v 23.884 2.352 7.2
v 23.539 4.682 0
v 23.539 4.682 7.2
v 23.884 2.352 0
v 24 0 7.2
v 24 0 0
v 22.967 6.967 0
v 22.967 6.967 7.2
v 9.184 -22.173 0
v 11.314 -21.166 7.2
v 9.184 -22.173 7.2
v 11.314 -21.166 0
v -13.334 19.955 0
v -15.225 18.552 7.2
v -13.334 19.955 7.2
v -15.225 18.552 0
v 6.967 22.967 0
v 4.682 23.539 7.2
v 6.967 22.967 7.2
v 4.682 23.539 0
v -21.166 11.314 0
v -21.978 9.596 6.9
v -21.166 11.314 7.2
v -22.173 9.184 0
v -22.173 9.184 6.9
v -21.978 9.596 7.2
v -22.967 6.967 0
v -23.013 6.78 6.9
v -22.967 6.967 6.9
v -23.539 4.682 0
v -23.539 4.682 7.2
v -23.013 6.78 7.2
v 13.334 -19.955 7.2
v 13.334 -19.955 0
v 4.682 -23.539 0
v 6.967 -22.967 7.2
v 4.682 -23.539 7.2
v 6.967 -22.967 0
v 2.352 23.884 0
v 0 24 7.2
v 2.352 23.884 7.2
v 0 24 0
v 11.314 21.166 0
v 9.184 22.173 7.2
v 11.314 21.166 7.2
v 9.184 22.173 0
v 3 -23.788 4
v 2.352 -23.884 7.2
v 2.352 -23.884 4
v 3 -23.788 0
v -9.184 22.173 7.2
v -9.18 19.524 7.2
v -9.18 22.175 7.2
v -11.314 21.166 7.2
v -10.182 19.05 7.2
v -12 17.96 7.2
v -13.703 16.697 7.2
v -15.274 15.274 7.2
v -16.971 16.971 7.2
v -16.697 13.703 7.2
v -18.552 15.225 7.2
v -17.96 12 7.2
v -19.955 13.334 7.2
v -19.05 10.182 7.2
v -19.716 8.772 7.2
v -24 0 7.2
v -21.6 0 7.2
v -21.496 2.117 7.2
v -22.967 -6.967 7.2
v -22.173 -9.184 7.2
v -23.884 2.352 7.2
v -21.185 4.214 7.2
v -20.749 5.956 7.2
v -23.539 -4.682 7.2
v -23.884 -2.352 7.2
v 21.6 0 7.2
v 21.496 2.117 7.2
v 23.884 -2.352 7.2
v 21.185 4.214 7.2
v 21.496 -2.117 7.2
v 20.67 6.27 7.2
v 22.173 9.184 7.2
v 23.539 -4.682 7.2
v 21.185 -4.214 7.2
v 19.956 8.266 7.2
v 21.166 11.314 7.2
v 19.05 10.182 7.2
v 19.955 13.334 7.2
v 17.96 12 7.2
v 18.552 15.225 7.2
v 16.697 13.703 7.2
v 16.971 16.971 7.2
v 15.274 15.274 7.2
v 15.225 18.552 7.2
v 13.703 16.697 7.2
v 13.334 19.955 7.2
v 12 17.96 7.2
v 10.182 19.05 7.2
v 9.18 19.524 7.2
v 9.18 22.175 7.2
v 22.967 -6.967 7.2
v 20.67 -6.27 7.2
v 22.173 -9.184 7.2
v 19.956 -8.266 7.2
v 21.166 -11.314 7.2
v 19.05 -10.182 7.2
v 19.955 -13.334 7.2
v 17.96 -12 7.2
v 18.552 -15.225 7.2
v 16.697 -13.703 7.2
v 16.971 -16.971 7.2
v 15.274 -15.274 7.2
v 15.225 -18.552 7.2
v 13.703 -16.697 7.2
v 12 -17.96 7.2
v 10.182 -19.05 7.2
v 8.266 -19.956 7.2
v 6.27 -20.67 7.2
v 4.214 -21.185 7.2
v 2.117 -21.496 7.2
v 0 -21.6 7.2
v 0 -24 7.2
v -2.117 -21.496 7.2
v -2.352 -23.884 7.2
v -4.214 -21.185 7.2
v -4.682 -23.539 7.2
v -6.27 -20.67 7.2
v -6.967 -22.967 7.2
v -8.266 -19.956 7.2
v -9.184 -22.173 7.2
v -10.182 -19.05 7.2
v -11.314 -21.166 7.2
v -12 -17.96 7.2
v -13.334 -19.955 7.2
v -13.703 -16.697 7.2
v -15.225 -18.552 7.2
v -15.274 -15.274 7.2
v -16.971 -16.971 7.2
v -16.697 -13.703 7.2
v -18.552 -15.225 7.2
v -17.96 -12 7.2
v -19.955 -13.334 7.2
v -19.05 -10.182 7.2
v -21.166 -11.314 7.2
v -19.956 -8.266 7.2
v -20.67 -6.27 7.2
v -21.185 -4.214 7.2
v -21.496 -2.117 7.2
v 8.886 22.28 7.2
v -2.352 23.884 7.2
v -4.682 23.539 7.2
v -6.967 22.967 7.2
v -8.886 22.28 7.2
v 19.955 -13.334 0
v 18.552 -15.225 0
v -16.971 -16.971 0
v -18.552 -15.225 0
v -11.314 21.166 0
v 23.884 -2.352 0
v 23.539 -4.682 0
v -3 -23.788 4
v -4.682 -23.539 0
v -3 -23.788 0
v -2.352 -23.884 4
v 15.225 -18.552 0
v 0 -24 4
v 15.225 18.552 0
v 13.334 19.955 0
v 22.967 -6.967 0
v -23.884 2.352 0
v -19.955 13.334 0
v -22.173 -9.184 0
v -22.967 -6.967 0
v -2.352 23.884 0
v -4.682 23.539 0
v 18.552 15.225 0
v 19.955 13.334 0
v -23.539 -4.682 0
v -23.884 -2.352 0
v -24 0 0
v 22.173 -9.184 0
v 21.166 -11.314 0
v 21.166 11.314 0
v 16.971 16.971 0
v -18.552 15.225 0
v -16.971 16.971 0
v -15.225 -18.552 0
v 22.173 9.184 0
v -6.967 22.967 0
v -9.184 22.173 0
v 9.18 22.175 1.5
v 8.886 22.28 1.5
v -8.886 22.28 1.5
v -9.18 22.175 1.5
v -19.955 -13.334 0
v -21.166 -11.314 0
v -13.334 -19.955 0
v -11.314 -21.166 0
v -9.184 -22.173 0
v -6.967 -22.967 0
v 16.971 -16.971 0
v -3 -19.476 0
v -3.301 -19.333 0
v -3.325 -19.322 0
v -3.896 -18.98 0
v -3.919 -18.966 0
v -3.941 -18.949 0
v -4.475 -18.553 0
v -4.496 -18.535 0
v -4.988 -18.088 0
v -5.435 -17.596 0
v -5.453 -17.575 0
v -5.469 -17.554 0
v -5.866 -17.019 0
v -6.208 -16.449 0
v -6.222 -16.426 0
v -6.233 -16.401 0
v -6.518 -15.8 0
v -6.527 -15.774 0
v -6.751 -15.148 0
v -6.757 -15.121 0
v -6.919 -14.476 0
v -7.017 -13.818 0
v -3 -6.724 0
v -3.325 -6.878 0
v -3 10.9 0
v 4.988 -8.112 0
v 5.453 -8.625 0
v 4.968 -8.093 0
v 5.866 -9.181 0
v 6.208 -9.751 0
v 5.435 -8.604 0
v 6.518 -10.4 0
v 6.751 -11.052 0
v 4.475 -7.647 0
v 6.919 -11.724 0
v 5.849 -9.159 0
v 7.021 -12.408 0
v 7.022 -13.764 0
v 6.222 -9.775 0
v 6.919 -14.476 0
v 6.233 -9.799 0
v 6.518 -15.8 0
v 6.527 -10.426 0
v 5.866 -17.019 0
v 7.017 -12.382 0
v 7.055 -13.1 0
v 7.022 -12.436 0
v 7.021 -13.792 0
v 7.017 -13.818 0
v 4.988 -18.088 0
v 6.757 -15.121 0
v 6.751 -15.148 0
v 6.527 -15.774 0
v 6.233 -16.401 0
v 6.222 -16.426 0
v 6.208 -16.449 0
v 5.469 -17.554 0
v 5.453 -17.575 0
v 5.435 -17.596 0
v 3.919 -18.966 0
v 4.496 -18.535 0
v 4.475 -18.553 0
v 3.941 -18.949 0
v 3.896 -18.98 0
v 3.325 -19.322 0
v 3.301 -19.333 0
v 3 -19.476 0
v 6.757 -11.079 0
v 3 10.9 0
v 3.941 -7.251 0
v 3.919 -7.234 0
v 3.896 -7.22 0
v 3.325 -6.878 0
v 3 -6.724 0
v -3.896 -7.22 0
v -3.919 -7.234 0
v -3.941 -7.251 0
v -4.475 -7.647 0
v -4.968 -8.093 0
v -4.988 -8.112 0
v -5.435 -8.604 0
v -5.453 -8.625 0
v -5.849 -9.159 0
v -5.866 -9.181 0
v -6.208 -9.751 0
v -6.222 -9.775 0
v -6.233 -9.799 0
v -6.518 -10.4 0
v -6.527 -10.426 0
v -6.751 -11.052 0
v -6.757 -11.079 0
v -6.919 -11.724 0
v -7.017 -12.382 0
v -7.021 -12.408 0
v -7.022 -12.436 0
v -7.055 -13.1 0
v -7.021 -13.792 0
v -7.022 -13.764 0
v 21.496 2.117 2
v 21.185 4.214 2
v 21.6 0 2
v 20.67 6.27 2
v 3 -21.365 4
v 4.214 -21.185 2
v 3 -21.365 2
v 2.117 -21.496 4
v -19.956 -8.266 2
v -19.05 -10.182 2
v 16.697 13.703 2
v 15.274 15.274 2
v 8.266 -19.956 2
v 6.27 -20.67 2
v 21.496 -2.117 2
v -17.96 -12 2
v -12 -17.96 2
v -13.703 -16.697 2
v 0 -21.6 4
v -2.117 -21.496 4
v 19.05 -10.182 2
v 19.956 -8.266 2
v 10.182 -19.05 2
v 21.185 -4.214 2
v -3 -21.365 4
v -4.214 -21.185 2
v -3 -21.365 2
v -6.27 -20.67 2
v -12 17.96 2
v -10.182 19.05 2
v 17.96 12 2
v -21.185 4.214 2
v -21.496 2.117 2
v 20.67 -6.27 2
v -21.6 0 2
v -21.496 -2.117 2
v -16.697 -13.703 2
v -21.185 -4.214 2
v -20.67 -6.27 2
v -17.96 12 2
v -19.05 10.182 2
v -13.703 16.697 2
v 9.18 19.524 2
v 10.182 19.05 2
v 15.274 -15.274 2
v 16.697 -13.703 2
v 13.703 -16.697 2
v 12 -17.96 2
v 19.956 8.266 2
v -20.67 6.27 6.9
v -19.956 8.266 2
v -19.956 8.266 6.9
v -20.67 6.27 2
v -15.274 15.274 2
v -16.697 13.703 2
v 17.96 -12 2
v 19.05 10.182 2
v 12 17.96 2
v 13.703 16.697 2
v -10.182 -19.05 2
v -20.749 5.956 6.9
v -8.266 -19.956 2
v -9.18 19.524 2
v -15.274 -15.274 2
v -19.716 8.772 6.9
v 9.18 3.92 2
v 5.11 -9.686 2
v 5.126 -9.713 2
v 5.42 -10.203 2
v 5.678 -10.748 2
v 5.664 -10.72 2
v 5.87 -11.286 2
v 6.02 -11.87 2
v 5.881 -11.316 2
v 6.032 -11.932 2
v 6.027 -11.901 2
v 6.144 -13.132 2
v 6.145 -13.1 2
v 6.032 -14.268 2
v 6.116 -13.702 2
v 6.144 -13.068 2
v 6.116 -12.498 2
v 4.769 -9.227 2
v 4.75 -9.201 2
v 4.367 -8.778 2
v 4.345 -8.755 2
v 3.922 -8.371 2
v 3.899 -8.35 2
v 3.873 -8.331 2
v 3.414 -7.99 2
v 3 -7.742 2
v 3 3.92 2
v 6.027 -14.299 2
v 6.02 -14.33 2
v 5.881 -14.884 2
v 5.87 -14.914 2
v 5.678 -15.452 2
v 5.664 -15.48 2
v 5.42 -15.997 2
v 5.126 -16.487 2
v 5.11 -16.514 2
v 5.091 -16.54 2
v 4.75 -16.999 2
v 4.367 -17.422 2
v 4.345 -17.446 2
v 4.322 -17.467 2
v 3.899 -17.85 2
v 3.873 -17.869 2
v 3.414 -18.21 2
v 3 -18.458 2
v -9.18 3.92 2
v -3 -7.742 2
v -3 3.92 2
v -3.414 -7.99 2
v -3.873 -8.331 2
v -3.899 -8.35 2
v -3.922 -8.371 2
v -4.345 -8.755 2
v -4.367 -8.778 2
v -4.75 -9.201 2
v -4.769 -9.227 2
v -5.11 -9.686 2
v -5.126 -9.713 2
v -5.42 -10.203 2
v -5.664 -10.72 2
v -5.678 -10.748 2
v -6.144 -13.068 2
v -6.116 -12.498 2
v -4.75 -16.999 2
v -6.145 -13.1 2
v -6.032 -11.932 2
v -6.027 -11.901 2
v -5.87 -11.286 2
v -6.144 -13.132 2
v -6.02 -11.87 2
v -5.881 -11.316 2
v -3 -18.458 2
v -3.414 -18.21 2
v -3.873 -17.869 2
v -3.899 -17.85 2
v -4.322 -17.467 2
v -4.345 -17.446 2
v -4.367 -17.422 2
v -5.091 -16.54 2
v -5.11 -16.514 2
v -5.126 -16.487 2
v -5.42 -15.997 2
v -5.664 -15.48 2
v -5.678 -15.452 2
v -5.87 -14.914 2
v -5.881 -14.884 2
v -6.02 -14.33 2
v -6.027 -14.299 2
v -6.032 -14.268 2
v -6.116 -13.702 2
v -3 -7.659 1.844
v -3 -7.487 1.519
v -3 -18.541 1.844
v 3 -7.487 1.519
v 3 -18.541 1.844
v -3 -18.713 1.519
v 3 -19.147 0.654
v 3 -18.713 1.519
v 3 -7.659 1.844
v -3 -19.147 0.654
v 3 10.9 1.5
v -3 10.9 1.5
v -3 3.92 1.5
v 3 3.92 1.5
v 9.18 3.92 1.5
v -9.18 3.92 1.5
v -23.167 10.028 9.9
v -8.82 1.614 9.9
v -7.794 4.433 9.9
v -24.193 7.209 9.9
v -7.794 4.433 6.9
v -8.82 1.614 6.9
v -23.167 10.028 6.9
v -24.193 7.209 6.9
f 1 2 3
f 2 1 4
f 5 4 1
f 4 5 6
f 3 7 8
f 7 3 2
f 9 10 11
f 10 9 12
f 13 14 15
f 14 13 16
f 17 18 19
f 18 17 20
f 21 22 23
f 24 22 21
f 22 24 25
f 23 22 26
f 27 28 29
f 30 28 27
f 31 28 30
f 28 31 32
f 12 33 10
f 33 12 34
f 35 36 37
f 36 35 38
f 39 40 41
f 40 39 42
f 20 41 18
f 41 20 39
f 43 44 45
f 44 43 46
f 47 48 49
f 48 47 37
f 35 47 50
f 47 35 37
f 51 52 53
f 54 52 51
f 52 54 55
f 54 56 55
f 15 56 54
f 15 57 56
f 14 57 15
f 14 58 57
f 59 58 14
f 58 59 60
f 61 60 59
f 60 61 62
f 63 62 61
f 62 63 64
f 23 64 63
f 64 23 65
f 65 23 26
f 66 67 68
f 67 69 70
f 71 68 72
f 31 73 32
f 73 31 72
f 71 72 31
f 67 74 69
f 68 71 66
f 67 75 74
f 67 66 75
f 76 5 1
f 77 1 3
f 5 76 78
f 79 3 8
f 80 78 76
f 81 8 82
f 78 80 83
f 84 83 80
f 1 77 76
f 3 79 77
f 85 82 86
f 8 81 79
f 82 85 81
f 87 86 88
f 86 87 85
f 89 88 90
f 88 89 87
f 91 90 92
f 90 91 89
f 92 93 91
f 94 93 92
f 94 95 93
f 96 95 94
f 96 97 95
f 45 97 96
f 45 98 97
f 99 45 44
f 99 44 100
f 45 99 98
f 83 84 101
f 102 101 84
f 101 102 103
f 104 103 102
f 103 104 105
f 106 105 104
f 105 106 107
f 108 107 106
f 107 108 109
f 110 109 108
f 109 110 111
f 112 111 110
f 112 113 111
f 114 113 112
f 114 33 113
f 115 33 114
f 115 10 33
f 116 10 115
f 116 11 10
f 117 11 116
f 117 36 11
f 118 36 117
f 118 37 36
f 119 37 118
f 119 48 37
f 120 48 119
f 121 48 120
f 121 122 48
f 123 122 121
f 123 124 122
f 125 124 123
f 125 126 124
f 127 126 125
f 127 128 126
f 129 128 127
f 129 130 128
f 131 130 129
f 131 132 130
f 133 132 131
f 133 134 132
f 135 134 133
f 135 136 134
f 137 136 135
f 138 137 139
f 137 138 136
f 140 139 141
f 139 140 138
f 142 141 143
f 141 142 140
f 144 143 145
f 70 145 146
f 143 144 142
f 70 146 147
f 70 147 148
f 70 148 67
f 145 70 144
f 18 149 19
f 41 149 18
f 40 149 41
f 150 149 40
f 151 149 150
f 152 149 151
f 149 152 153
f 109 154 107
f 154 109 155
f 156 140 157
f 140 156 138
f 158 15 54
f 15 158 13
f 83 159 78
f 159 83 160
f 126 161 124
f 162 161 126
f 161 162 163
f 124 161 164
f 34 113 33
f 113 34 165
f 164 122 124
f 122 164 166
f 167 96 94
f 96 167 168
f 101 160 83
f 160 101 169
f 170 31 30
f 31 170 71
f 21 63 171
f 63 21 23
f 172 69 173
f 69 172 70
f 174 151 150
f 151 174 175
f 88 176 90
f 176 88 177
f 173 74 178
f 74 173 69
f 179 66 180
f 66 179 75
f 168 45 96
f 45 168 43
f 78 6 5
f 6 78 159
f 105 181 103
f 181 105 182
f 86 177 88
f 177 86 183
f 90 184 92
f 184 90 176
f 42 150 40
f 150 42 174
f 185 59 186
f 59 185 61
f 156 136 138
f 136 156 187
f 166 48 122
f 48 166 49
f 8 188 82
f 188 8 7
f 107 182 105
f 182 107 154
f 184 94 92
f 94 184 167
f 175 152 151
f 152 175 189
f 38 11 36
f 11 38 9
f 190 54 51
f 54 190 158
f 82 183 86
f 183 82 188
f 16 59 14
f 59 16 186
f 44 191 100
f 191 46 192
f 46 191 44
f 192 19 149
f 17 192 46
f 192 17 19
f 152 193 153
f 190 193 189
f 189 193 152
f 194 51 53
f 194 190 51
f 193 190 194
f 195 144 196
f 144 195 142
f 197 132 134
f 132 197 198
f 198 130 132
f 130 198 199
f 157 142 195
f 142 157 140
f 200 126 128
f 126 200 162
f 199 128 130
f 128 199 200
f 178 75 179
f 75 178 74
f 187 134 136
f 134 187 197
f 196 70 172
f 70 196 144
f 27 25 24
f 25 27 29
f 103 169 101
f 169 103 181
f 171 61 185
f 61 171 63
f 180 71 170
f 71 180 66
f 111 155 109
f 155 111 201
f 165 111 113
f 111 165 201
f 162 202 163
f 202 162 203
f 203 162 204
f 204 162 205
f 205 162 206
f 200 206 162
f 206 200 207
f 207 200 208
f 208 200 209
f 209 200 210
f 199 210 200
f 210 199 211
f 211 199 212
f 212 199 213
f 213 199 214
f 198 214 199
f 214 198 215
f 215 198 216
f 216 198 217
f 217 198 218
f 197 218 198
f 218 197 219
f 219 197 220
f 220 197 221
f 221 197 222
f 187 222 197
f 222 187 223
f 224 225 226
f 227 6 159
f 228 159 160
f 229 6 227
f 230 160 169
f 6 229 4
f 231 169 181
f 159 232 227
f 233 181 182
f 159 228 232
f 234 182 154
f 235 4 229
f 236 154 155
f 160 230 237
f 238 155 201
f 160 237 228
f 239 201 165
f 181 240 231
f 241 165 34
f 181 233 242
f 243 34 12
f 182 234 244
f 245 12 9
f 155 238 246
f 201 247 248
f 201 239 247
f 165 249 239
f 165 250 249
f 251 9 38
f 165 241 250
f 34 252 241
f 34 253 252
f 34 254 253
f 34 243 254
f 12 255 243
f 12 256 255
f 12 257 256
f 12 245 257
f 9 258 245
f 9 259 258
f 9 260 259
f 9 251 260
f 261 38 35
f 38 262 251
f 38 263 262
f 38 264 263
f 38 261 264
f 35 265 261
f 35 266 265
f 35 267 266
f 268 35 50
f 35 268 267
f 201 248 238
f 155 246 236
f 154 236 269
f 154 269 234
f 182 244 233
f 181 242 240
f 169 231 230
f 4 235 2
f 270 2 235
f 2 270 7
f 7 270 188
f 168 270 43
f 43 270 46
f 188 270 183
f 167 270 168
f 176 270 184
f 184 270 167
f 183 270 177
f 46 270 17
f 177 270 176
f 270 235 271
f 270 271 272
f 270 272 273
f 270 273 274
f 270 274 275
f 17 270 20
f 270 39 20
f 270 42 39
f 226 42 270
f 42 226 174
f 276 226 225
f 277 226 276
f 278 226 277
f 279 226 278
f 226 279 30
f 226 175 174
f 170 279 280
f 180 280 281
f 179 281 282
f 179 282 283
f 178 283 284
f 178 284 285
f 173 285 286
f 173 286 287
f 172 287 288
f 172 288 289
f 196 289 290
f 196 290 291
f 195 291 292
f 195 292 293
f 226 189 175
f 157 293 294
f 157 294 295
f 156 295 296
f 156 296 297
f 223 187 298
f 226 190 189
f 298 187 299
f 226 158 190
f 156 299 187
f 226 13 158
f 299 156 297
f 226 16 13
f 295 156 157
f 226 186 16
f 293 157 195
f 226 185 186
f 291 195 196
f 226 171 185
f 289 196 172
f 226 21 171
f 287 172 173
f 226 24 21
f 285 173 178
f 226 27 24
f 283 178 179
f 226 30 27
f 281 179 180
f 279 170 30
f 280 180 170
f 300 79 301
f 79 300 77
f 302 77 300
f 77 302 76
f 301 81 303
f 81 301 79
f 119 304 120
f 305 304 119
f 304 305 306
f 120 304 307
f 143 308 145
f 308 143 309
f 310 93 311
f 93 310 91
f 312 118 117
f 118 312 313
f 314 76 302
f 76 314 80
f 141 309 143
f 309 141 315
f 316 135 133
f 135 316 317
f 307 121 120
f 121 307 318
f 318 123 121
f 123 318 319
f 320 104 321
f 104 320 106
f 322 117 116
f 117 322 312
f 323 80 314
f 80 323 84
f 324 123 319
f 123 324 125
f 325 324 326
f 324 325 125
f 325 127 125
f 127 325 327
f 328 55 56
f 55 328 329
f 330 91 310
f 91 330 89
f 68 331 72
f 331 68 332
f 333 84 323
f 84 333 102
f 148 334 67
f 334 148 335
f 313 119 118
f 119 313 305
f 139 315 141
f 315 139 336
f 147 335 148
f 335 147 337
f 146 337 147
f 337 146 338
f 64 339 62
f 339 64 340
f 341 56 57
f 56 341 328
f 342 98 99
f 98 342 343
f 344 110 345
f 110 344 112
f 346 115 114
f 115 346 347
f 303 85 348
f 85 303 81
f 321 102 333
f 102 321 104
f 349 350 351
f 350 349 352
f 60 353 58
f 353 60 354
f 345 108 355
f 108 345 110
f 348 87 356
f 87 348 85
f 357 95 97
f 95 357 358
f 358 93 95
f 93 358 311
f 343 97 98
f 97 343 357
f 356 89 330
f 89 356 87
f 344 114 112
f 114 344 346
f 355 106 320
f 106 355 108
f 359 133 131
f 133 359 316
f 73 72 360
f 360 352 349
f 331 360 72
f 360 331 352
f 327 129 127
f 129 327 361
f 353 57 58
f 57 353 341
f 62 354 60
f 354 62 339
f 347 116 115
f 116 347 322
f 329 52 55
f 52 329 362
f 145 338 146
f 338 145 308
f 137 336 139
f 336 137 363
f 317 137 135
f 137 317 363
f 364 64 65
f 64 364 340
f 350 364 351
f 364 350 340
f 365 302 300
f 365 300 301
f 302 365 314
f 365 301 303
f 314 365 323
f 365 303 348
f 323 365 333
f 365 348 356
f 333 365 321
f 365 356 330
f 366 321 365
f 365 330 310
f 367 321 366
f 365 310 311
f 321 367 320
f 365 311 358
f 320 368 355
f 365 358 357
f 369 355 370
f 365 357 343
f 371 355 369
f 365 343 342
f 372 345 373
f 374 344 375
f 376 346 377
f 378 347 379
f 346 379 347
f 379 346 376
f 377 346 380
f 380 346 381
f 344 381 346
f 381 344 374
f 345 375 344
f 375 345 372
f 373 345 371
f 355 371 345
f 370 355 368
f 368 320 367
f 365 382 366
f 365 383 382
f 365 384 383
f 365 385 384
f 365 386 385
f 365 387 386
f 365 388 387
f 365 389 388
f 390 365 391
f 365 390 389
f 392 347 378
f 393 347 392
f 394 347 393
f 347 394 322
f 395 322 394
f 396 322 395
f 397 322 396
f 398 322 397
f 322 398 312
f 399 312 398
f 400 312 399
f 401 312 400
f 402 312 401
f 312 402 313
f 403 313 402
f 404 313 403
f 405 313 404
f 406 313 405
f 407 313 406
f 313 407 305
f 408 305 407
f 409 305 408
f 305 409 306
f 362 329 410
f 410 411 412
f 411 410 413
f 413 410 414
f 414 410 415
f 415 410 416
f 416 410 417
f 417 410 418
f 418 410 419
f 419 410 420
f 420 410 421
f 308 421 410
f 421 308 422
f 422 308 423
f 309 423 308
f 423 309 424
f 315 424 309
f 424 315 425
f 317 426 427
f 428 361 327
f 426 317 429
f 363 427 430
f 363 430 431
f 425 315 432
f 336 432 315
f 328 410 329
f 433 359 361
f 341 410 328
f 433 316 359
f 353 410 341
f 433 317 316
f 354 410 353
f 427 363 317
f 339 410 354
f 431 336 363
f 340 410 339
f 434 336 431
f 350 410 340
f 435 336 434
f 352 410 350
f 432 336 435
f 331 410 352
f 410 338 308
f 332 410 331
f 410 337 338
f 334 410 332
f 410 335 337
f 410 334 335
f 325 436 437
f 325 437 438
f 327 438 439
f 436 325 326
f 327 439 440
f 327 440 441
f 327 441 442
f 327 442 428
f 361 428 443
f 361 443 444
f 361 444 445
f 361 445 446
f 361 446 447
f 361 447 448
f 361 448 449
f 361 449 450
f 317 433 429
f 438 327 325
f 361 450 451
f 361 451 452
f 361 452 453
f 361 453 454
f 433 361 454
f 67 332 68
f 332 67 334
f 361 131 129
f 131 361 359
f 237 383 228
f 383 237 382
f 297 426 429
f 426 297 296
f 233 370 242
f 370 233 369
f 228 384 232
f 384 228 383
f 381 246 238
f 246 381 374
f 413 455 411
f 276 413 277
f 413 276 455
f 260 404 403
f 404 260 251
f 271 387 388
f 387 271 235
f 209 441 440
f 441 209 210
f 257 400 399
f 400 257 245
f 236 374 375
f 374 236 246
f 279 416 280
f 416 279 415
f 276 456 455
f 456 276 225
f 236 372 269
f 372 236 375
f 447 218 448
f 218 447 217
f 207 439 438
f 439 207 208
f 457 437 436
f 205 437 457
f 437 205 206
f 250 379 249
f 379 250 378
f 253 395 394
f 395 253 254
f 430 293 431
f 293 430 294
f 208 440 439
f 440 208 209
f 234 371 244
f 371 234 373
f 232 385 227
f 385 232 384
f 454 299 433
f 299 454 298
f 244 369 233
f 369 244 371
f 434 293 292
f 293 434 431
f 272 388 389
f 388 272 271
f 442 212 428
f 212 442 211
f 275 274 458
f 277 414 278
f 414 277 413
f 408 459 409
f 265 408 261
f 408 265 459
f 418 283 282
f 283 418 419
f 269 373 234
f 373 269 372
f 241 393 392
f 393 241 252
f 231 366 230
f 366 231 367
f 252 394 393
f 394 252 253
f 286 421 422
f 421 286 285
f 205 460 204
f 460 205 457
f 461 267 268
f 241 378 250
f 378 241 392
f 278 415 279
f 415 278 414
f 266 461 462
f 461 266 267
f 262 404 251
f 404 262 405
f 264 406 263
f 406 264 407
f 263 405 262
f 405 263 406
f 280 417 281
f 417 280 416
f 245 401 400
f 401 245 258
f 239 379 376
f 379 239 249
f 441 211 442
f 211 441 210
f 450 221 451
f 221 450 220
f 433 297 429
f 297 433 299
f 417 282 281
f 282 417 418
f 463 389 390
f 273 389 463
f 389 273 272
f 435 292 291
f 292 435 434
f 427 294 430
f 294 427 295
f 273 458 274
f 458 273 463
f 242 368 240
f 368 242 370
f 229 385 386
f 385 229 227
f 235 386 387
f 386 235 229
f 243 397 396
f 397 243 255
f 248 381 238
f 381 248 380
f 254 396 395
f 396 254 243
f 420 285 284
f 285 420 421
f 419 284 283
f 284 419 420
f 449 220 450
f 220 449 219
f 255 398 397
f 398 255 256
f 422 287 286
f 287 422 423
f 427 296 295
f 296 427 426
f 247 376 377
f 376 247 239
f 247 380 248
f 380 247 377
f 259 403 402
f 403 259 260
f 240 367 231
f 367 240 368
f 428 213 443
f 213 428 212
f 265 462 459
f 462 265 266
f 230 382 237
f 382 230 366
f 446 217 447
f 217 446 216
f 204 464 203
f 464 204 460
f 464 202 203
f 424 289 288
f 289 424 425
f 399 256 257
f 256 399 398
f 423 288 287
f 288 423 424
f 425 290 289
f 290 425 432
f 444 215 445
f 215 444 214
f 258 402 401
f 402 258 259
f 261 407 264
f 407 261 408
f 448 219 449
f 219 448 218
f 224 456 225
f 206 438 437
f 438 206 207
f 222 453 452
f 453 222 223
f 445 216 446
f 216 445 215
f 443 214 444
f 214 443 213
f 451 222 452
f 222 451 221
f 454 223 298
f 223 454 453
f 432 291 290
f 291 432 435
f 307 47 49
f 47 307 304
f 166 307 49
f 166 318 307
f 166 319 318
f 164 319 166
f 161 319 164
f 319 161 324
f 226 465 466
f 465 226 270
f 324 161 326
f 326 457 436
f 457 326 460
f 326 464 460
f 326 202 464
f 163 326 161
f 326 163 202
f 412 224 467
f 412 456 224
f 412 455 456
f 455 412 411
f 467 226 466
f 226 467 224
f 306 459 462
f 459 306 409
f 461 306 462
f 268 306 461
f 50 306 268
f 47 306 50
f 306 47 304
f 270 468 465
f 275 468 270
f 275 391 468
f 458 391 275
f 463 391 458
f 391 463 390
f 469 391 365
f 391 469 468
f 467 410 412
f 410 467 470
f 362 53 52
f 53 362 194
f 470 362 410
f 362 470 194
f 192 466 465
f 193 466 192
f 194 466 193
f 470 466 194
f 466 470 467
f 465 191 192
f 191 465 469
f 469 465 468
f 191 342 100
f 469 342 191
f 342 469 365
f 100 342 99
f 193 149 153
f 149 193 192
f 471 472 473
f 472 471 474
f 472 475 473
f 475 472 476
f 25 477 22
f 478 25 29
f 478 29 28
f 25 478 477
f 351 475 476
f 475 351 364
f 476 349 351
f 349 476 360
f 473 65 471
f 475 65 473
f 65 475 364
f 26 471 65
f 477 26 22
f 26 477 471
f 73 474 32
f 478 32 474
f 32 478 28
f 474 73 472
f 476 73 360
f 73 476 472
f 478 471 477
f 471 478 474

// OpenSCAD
// file: params.scad
// params.scad — shared parametric variables for the singulation module.
//
// EVERYTHING pill-specific lives here so a new pill regenerates every part
// (brief §4: "parametric pocket dimensions exposed as top-level variables").
// Measure your real pill with calipers, edit the four PILL numbers, re-render.
//
// Units: millimetres. Coordinate convention: disc lies in the XY plane, rotates
// about +Z; pills fall in -Z into the chute.

// ─────────────────────────────────────────────────────────────────────────────
// PILL (measure these)
// ─────────────────────────────────────────────────────────────────────────────
pill_shape     = "round";  // "round" (tablet) | "oblong" (capsule)
pill_diameter  = 9.0;      // round: tablet diameter
pill_thickness = 4.0;      // round: tablet height  (== oblong: capsule diameter)
pill_length    = 15.0;     // oblong: capsule length (ignored when round)
pill_width     = 7.0;      // oblong: capsule width  (ignored when round)

// ─────────────────────────────────────────────────────────────────────────────
// POCKET (derived from the pill + clearances — tune the clearances per pill)
// ─────────────────────────────────────────────────────────────────────────────
pocket_side_clear = 0.6;   // added around the pill so it drops in freely (not tight)
pocket_chamfer    = 0.8;   // chamfer at the pocket mouth so pills self-seat (anti-jam)

// Pocket depth ≈ ONE pill thickness so a second pill can't stack + ride along
// (brief §4). The disc thickness equals the pocket depth (pockets are through the
// disc; the housing floor holds the pill until it reaches the drop-hole).
pocket_depth      = pill_thickness + 0.6;   // small clearance over pill height

// Round pocket bore / oblong pocket footprint (computed, but overridable):
round_pocket_d    = pill_diameter + 2*pocket_side_clear;
oblong_pocket_l   = pill_length   + 2*pocket_side_clear;
oblong_pocket_w   = pill_width    + 2*pocket_side_clear;

// ─────────────────────────────────────────────────────────────────────────────
// DISC
// ─────────────────────────────────────────────────────────────────────────────
pocket_count   = 6;        // pockets evenly spaced around the disc
disc_edge_wall = 3.0;      // material between a pocket and the disc rim
disc_hub_d     = 14.0;     // solid central hub diameter (around the shaft)
disc_thickness = pocket_depth;               // see note above

// Radius of the circle the pocket CENTRES sit on. Derived so neighbouring pockets
// don't overlap and there's wall to the rim. Max pocket footprint radius:
pocket_reach   = (pill_shape == "oblong")
                    ? max(oblong_pocket_l, oblong_pocket_w)/2
                    : round_pocket_d/2;
pocket_ring_r  = max(disc_hub_d/2 + pocket_reach + 1,
                     // keep arc gap between pockets ≥ their footprint:
                     (pocket_reach + 1) / sin(180/pocket_count));
disc_d         = 2*(pocket_ring_r + pocket_reach + disc_edge_wall);

// ─────────────────────────────────────────────────────────────────────────────
// SHAFT / ACTUATOR COUPLING
// ─────────────────────────────────────────────────────────────────────────────
// "servo" = press onto an SG90 horn; "dshaft" = 5 mm D-shaft (stepper/motor).
shaft_type     = "servo";
dshaft_d       = 5.0;      // 28BYJ-48 / motor D-shaft nominal
dshaft_flat    = 3.0;      // flat-to-round chord for the D
servo_horn_d   = 8.0;      // recess dia for a round servo horn to sit in
servo_horn_h   = 2.0;      // horn thickness recess

// ─────────────────────────────────────────────────────────────────────────────
// HOUSING / CHUTE
// ─────────────────────────────────────────────────────────────────────────────
disc_clear     = 0.4;      // radial gap disc↔housing so it spins freely
floor_thick    = 2.0;      // housing floor under the disc
wiper_gap      = pill_thickness + 0.4;  // scraper lip height above disc face
drop_hole_d    = round_pocket_d + 2;    // clearance hole in floor at drop station
sensor_slot_w  = 6.0;      // slot for the IR emitter/receiver across the chute
wall           = 2.4;      // general printed wall thickness

// Rendering smoothness
$fn = 64;
// main file
// disc_housing.scad — holds the disc + actuator; has the scoop window under the
// hopper, the drop-hole to the chute, the fixed wiper/scraper lip, and the IR
// sensor slot. (brief §8: disc_housing.scad)
//
// The disc (singulation_disc.scad) sits in the circular pocket of this housing,
// resting on the floor. The floor blocks pockets everywhere EXCEPT the drop-hole,
// so a pill rides in its pocket until it reaches the drop station and falls.
include <params.scad>

// Where, around the disc, things sit (degrees). Hopper scoops on one side; the
// drop-hole is offset so a scooped pill travels under the wiper before dropping.
scoop_angle = 90;    // hopper feeds here
drop_angle  = 270;   // pill falls here (opposite side)
wiper_angle = 160;   // scraper lip sits between scoop and drop

housing_od   = disc_d + 2*(disc_clear + wall);
cavity_d     = disc_d + 2*disc_clear;
cavity_h     = disc_thickness + 0.6;          // a hair over disc so it spins free
housing_h    = floor_thick + cavity_h;

module disc_cavity() {
  translate([0, 0, floor_thick])
    cylinder(h = cavity_h + 0.1, d = cavity_d);
}

module drop_hole() {
  // Through the floor at the drop station, tapering outward downward into the chute.
  translate([pocket_ring_r, 0, 0]) rotate([0,0,0])
    translate([0,0,-0.1])
      cylinder(h = floor_thick + 0.2, d1 = drop_hole_d + 2, d2 = drop_hole_d);
}

module sensor_slot() {
  // Horizontal slot across the drop path for the IR emitter/receiver beam.
  translate([pocket_ring_r, 0, floor_thick/2])
    cube([housing_od, sensor_slot_w, sensor_slot_w], center = true);
}

module wiper_lip() {
  // Fixed scraper, as a CANTILEVER ARM connected to the outer wall (so it prints as
  // one piece — a free-floating lip is unprintable). The arm spans radially from the
  // rim inward over the pocket path; its underside sits just above a SEATED pill
  // (which is flush with the disc top, since pocket depth ≈ pill thickness), so a
  // pill riding proud of its pocket is knocked back (anti double-stack).
  z_bottom = floor_thick + disc_thickness + 0.3;  // clears a seated pill, catches a proud one
  arm_h    = 3.0;
  inner_r  = pocket_ring_r - round_pocket_d*0.3;   // scraper tip reaches over the pocket
  outer_r  = housing_od/2;                          // embed into the outer wall
  arm_len  = outer_r - inner_r + wall;
  rotate([0, 0, wiper_angle])
    translate([(inner_r + outer_r)/2, 0, z_bottom + arm_h/2])
      cube([arm_len, 3.0, arm_h], center = true);
}

module housing_body() {
  difference() {
    cylinder(h = housing_h, d = housing_od);   // solid puck
    disc_cavity();                             // recess the disc sits in
    rotate([0,0,drop_angle]) drop_hole();      // pill exit
    rotate([0,0,drop_angle]) sensor_slot();    // IR beam across the exit
    // scoop window: open the cavity wall toward the hopper so pills can enter
    rotate([0,0,scoop_angle])
      translate([pocket_ring_r, 0, floor_thick + cavity_h/2])
        cube([round_pocket_d*1.8, round_pocket_d*1.8, cavity_h + 1], center = true);
  }
}

module disc_housing() {
  union() {
    housing_body();
    wiper_lip();
    // NOTE: actuator mount (SG90 pocket OR 28BYJ-48 boss) bolts to the underside.
    // Left as a labelled stub — its footprint depends on shaft_type and is added in
    // Phase C once the disc↔shaft coupling is validated on a printed test piece.
  }
}

disc_housing();

echo(str("housing_od=", housing_od, "  drop_angle=", drop_angle,
         "  wiper_gap=", wiper_gap));
